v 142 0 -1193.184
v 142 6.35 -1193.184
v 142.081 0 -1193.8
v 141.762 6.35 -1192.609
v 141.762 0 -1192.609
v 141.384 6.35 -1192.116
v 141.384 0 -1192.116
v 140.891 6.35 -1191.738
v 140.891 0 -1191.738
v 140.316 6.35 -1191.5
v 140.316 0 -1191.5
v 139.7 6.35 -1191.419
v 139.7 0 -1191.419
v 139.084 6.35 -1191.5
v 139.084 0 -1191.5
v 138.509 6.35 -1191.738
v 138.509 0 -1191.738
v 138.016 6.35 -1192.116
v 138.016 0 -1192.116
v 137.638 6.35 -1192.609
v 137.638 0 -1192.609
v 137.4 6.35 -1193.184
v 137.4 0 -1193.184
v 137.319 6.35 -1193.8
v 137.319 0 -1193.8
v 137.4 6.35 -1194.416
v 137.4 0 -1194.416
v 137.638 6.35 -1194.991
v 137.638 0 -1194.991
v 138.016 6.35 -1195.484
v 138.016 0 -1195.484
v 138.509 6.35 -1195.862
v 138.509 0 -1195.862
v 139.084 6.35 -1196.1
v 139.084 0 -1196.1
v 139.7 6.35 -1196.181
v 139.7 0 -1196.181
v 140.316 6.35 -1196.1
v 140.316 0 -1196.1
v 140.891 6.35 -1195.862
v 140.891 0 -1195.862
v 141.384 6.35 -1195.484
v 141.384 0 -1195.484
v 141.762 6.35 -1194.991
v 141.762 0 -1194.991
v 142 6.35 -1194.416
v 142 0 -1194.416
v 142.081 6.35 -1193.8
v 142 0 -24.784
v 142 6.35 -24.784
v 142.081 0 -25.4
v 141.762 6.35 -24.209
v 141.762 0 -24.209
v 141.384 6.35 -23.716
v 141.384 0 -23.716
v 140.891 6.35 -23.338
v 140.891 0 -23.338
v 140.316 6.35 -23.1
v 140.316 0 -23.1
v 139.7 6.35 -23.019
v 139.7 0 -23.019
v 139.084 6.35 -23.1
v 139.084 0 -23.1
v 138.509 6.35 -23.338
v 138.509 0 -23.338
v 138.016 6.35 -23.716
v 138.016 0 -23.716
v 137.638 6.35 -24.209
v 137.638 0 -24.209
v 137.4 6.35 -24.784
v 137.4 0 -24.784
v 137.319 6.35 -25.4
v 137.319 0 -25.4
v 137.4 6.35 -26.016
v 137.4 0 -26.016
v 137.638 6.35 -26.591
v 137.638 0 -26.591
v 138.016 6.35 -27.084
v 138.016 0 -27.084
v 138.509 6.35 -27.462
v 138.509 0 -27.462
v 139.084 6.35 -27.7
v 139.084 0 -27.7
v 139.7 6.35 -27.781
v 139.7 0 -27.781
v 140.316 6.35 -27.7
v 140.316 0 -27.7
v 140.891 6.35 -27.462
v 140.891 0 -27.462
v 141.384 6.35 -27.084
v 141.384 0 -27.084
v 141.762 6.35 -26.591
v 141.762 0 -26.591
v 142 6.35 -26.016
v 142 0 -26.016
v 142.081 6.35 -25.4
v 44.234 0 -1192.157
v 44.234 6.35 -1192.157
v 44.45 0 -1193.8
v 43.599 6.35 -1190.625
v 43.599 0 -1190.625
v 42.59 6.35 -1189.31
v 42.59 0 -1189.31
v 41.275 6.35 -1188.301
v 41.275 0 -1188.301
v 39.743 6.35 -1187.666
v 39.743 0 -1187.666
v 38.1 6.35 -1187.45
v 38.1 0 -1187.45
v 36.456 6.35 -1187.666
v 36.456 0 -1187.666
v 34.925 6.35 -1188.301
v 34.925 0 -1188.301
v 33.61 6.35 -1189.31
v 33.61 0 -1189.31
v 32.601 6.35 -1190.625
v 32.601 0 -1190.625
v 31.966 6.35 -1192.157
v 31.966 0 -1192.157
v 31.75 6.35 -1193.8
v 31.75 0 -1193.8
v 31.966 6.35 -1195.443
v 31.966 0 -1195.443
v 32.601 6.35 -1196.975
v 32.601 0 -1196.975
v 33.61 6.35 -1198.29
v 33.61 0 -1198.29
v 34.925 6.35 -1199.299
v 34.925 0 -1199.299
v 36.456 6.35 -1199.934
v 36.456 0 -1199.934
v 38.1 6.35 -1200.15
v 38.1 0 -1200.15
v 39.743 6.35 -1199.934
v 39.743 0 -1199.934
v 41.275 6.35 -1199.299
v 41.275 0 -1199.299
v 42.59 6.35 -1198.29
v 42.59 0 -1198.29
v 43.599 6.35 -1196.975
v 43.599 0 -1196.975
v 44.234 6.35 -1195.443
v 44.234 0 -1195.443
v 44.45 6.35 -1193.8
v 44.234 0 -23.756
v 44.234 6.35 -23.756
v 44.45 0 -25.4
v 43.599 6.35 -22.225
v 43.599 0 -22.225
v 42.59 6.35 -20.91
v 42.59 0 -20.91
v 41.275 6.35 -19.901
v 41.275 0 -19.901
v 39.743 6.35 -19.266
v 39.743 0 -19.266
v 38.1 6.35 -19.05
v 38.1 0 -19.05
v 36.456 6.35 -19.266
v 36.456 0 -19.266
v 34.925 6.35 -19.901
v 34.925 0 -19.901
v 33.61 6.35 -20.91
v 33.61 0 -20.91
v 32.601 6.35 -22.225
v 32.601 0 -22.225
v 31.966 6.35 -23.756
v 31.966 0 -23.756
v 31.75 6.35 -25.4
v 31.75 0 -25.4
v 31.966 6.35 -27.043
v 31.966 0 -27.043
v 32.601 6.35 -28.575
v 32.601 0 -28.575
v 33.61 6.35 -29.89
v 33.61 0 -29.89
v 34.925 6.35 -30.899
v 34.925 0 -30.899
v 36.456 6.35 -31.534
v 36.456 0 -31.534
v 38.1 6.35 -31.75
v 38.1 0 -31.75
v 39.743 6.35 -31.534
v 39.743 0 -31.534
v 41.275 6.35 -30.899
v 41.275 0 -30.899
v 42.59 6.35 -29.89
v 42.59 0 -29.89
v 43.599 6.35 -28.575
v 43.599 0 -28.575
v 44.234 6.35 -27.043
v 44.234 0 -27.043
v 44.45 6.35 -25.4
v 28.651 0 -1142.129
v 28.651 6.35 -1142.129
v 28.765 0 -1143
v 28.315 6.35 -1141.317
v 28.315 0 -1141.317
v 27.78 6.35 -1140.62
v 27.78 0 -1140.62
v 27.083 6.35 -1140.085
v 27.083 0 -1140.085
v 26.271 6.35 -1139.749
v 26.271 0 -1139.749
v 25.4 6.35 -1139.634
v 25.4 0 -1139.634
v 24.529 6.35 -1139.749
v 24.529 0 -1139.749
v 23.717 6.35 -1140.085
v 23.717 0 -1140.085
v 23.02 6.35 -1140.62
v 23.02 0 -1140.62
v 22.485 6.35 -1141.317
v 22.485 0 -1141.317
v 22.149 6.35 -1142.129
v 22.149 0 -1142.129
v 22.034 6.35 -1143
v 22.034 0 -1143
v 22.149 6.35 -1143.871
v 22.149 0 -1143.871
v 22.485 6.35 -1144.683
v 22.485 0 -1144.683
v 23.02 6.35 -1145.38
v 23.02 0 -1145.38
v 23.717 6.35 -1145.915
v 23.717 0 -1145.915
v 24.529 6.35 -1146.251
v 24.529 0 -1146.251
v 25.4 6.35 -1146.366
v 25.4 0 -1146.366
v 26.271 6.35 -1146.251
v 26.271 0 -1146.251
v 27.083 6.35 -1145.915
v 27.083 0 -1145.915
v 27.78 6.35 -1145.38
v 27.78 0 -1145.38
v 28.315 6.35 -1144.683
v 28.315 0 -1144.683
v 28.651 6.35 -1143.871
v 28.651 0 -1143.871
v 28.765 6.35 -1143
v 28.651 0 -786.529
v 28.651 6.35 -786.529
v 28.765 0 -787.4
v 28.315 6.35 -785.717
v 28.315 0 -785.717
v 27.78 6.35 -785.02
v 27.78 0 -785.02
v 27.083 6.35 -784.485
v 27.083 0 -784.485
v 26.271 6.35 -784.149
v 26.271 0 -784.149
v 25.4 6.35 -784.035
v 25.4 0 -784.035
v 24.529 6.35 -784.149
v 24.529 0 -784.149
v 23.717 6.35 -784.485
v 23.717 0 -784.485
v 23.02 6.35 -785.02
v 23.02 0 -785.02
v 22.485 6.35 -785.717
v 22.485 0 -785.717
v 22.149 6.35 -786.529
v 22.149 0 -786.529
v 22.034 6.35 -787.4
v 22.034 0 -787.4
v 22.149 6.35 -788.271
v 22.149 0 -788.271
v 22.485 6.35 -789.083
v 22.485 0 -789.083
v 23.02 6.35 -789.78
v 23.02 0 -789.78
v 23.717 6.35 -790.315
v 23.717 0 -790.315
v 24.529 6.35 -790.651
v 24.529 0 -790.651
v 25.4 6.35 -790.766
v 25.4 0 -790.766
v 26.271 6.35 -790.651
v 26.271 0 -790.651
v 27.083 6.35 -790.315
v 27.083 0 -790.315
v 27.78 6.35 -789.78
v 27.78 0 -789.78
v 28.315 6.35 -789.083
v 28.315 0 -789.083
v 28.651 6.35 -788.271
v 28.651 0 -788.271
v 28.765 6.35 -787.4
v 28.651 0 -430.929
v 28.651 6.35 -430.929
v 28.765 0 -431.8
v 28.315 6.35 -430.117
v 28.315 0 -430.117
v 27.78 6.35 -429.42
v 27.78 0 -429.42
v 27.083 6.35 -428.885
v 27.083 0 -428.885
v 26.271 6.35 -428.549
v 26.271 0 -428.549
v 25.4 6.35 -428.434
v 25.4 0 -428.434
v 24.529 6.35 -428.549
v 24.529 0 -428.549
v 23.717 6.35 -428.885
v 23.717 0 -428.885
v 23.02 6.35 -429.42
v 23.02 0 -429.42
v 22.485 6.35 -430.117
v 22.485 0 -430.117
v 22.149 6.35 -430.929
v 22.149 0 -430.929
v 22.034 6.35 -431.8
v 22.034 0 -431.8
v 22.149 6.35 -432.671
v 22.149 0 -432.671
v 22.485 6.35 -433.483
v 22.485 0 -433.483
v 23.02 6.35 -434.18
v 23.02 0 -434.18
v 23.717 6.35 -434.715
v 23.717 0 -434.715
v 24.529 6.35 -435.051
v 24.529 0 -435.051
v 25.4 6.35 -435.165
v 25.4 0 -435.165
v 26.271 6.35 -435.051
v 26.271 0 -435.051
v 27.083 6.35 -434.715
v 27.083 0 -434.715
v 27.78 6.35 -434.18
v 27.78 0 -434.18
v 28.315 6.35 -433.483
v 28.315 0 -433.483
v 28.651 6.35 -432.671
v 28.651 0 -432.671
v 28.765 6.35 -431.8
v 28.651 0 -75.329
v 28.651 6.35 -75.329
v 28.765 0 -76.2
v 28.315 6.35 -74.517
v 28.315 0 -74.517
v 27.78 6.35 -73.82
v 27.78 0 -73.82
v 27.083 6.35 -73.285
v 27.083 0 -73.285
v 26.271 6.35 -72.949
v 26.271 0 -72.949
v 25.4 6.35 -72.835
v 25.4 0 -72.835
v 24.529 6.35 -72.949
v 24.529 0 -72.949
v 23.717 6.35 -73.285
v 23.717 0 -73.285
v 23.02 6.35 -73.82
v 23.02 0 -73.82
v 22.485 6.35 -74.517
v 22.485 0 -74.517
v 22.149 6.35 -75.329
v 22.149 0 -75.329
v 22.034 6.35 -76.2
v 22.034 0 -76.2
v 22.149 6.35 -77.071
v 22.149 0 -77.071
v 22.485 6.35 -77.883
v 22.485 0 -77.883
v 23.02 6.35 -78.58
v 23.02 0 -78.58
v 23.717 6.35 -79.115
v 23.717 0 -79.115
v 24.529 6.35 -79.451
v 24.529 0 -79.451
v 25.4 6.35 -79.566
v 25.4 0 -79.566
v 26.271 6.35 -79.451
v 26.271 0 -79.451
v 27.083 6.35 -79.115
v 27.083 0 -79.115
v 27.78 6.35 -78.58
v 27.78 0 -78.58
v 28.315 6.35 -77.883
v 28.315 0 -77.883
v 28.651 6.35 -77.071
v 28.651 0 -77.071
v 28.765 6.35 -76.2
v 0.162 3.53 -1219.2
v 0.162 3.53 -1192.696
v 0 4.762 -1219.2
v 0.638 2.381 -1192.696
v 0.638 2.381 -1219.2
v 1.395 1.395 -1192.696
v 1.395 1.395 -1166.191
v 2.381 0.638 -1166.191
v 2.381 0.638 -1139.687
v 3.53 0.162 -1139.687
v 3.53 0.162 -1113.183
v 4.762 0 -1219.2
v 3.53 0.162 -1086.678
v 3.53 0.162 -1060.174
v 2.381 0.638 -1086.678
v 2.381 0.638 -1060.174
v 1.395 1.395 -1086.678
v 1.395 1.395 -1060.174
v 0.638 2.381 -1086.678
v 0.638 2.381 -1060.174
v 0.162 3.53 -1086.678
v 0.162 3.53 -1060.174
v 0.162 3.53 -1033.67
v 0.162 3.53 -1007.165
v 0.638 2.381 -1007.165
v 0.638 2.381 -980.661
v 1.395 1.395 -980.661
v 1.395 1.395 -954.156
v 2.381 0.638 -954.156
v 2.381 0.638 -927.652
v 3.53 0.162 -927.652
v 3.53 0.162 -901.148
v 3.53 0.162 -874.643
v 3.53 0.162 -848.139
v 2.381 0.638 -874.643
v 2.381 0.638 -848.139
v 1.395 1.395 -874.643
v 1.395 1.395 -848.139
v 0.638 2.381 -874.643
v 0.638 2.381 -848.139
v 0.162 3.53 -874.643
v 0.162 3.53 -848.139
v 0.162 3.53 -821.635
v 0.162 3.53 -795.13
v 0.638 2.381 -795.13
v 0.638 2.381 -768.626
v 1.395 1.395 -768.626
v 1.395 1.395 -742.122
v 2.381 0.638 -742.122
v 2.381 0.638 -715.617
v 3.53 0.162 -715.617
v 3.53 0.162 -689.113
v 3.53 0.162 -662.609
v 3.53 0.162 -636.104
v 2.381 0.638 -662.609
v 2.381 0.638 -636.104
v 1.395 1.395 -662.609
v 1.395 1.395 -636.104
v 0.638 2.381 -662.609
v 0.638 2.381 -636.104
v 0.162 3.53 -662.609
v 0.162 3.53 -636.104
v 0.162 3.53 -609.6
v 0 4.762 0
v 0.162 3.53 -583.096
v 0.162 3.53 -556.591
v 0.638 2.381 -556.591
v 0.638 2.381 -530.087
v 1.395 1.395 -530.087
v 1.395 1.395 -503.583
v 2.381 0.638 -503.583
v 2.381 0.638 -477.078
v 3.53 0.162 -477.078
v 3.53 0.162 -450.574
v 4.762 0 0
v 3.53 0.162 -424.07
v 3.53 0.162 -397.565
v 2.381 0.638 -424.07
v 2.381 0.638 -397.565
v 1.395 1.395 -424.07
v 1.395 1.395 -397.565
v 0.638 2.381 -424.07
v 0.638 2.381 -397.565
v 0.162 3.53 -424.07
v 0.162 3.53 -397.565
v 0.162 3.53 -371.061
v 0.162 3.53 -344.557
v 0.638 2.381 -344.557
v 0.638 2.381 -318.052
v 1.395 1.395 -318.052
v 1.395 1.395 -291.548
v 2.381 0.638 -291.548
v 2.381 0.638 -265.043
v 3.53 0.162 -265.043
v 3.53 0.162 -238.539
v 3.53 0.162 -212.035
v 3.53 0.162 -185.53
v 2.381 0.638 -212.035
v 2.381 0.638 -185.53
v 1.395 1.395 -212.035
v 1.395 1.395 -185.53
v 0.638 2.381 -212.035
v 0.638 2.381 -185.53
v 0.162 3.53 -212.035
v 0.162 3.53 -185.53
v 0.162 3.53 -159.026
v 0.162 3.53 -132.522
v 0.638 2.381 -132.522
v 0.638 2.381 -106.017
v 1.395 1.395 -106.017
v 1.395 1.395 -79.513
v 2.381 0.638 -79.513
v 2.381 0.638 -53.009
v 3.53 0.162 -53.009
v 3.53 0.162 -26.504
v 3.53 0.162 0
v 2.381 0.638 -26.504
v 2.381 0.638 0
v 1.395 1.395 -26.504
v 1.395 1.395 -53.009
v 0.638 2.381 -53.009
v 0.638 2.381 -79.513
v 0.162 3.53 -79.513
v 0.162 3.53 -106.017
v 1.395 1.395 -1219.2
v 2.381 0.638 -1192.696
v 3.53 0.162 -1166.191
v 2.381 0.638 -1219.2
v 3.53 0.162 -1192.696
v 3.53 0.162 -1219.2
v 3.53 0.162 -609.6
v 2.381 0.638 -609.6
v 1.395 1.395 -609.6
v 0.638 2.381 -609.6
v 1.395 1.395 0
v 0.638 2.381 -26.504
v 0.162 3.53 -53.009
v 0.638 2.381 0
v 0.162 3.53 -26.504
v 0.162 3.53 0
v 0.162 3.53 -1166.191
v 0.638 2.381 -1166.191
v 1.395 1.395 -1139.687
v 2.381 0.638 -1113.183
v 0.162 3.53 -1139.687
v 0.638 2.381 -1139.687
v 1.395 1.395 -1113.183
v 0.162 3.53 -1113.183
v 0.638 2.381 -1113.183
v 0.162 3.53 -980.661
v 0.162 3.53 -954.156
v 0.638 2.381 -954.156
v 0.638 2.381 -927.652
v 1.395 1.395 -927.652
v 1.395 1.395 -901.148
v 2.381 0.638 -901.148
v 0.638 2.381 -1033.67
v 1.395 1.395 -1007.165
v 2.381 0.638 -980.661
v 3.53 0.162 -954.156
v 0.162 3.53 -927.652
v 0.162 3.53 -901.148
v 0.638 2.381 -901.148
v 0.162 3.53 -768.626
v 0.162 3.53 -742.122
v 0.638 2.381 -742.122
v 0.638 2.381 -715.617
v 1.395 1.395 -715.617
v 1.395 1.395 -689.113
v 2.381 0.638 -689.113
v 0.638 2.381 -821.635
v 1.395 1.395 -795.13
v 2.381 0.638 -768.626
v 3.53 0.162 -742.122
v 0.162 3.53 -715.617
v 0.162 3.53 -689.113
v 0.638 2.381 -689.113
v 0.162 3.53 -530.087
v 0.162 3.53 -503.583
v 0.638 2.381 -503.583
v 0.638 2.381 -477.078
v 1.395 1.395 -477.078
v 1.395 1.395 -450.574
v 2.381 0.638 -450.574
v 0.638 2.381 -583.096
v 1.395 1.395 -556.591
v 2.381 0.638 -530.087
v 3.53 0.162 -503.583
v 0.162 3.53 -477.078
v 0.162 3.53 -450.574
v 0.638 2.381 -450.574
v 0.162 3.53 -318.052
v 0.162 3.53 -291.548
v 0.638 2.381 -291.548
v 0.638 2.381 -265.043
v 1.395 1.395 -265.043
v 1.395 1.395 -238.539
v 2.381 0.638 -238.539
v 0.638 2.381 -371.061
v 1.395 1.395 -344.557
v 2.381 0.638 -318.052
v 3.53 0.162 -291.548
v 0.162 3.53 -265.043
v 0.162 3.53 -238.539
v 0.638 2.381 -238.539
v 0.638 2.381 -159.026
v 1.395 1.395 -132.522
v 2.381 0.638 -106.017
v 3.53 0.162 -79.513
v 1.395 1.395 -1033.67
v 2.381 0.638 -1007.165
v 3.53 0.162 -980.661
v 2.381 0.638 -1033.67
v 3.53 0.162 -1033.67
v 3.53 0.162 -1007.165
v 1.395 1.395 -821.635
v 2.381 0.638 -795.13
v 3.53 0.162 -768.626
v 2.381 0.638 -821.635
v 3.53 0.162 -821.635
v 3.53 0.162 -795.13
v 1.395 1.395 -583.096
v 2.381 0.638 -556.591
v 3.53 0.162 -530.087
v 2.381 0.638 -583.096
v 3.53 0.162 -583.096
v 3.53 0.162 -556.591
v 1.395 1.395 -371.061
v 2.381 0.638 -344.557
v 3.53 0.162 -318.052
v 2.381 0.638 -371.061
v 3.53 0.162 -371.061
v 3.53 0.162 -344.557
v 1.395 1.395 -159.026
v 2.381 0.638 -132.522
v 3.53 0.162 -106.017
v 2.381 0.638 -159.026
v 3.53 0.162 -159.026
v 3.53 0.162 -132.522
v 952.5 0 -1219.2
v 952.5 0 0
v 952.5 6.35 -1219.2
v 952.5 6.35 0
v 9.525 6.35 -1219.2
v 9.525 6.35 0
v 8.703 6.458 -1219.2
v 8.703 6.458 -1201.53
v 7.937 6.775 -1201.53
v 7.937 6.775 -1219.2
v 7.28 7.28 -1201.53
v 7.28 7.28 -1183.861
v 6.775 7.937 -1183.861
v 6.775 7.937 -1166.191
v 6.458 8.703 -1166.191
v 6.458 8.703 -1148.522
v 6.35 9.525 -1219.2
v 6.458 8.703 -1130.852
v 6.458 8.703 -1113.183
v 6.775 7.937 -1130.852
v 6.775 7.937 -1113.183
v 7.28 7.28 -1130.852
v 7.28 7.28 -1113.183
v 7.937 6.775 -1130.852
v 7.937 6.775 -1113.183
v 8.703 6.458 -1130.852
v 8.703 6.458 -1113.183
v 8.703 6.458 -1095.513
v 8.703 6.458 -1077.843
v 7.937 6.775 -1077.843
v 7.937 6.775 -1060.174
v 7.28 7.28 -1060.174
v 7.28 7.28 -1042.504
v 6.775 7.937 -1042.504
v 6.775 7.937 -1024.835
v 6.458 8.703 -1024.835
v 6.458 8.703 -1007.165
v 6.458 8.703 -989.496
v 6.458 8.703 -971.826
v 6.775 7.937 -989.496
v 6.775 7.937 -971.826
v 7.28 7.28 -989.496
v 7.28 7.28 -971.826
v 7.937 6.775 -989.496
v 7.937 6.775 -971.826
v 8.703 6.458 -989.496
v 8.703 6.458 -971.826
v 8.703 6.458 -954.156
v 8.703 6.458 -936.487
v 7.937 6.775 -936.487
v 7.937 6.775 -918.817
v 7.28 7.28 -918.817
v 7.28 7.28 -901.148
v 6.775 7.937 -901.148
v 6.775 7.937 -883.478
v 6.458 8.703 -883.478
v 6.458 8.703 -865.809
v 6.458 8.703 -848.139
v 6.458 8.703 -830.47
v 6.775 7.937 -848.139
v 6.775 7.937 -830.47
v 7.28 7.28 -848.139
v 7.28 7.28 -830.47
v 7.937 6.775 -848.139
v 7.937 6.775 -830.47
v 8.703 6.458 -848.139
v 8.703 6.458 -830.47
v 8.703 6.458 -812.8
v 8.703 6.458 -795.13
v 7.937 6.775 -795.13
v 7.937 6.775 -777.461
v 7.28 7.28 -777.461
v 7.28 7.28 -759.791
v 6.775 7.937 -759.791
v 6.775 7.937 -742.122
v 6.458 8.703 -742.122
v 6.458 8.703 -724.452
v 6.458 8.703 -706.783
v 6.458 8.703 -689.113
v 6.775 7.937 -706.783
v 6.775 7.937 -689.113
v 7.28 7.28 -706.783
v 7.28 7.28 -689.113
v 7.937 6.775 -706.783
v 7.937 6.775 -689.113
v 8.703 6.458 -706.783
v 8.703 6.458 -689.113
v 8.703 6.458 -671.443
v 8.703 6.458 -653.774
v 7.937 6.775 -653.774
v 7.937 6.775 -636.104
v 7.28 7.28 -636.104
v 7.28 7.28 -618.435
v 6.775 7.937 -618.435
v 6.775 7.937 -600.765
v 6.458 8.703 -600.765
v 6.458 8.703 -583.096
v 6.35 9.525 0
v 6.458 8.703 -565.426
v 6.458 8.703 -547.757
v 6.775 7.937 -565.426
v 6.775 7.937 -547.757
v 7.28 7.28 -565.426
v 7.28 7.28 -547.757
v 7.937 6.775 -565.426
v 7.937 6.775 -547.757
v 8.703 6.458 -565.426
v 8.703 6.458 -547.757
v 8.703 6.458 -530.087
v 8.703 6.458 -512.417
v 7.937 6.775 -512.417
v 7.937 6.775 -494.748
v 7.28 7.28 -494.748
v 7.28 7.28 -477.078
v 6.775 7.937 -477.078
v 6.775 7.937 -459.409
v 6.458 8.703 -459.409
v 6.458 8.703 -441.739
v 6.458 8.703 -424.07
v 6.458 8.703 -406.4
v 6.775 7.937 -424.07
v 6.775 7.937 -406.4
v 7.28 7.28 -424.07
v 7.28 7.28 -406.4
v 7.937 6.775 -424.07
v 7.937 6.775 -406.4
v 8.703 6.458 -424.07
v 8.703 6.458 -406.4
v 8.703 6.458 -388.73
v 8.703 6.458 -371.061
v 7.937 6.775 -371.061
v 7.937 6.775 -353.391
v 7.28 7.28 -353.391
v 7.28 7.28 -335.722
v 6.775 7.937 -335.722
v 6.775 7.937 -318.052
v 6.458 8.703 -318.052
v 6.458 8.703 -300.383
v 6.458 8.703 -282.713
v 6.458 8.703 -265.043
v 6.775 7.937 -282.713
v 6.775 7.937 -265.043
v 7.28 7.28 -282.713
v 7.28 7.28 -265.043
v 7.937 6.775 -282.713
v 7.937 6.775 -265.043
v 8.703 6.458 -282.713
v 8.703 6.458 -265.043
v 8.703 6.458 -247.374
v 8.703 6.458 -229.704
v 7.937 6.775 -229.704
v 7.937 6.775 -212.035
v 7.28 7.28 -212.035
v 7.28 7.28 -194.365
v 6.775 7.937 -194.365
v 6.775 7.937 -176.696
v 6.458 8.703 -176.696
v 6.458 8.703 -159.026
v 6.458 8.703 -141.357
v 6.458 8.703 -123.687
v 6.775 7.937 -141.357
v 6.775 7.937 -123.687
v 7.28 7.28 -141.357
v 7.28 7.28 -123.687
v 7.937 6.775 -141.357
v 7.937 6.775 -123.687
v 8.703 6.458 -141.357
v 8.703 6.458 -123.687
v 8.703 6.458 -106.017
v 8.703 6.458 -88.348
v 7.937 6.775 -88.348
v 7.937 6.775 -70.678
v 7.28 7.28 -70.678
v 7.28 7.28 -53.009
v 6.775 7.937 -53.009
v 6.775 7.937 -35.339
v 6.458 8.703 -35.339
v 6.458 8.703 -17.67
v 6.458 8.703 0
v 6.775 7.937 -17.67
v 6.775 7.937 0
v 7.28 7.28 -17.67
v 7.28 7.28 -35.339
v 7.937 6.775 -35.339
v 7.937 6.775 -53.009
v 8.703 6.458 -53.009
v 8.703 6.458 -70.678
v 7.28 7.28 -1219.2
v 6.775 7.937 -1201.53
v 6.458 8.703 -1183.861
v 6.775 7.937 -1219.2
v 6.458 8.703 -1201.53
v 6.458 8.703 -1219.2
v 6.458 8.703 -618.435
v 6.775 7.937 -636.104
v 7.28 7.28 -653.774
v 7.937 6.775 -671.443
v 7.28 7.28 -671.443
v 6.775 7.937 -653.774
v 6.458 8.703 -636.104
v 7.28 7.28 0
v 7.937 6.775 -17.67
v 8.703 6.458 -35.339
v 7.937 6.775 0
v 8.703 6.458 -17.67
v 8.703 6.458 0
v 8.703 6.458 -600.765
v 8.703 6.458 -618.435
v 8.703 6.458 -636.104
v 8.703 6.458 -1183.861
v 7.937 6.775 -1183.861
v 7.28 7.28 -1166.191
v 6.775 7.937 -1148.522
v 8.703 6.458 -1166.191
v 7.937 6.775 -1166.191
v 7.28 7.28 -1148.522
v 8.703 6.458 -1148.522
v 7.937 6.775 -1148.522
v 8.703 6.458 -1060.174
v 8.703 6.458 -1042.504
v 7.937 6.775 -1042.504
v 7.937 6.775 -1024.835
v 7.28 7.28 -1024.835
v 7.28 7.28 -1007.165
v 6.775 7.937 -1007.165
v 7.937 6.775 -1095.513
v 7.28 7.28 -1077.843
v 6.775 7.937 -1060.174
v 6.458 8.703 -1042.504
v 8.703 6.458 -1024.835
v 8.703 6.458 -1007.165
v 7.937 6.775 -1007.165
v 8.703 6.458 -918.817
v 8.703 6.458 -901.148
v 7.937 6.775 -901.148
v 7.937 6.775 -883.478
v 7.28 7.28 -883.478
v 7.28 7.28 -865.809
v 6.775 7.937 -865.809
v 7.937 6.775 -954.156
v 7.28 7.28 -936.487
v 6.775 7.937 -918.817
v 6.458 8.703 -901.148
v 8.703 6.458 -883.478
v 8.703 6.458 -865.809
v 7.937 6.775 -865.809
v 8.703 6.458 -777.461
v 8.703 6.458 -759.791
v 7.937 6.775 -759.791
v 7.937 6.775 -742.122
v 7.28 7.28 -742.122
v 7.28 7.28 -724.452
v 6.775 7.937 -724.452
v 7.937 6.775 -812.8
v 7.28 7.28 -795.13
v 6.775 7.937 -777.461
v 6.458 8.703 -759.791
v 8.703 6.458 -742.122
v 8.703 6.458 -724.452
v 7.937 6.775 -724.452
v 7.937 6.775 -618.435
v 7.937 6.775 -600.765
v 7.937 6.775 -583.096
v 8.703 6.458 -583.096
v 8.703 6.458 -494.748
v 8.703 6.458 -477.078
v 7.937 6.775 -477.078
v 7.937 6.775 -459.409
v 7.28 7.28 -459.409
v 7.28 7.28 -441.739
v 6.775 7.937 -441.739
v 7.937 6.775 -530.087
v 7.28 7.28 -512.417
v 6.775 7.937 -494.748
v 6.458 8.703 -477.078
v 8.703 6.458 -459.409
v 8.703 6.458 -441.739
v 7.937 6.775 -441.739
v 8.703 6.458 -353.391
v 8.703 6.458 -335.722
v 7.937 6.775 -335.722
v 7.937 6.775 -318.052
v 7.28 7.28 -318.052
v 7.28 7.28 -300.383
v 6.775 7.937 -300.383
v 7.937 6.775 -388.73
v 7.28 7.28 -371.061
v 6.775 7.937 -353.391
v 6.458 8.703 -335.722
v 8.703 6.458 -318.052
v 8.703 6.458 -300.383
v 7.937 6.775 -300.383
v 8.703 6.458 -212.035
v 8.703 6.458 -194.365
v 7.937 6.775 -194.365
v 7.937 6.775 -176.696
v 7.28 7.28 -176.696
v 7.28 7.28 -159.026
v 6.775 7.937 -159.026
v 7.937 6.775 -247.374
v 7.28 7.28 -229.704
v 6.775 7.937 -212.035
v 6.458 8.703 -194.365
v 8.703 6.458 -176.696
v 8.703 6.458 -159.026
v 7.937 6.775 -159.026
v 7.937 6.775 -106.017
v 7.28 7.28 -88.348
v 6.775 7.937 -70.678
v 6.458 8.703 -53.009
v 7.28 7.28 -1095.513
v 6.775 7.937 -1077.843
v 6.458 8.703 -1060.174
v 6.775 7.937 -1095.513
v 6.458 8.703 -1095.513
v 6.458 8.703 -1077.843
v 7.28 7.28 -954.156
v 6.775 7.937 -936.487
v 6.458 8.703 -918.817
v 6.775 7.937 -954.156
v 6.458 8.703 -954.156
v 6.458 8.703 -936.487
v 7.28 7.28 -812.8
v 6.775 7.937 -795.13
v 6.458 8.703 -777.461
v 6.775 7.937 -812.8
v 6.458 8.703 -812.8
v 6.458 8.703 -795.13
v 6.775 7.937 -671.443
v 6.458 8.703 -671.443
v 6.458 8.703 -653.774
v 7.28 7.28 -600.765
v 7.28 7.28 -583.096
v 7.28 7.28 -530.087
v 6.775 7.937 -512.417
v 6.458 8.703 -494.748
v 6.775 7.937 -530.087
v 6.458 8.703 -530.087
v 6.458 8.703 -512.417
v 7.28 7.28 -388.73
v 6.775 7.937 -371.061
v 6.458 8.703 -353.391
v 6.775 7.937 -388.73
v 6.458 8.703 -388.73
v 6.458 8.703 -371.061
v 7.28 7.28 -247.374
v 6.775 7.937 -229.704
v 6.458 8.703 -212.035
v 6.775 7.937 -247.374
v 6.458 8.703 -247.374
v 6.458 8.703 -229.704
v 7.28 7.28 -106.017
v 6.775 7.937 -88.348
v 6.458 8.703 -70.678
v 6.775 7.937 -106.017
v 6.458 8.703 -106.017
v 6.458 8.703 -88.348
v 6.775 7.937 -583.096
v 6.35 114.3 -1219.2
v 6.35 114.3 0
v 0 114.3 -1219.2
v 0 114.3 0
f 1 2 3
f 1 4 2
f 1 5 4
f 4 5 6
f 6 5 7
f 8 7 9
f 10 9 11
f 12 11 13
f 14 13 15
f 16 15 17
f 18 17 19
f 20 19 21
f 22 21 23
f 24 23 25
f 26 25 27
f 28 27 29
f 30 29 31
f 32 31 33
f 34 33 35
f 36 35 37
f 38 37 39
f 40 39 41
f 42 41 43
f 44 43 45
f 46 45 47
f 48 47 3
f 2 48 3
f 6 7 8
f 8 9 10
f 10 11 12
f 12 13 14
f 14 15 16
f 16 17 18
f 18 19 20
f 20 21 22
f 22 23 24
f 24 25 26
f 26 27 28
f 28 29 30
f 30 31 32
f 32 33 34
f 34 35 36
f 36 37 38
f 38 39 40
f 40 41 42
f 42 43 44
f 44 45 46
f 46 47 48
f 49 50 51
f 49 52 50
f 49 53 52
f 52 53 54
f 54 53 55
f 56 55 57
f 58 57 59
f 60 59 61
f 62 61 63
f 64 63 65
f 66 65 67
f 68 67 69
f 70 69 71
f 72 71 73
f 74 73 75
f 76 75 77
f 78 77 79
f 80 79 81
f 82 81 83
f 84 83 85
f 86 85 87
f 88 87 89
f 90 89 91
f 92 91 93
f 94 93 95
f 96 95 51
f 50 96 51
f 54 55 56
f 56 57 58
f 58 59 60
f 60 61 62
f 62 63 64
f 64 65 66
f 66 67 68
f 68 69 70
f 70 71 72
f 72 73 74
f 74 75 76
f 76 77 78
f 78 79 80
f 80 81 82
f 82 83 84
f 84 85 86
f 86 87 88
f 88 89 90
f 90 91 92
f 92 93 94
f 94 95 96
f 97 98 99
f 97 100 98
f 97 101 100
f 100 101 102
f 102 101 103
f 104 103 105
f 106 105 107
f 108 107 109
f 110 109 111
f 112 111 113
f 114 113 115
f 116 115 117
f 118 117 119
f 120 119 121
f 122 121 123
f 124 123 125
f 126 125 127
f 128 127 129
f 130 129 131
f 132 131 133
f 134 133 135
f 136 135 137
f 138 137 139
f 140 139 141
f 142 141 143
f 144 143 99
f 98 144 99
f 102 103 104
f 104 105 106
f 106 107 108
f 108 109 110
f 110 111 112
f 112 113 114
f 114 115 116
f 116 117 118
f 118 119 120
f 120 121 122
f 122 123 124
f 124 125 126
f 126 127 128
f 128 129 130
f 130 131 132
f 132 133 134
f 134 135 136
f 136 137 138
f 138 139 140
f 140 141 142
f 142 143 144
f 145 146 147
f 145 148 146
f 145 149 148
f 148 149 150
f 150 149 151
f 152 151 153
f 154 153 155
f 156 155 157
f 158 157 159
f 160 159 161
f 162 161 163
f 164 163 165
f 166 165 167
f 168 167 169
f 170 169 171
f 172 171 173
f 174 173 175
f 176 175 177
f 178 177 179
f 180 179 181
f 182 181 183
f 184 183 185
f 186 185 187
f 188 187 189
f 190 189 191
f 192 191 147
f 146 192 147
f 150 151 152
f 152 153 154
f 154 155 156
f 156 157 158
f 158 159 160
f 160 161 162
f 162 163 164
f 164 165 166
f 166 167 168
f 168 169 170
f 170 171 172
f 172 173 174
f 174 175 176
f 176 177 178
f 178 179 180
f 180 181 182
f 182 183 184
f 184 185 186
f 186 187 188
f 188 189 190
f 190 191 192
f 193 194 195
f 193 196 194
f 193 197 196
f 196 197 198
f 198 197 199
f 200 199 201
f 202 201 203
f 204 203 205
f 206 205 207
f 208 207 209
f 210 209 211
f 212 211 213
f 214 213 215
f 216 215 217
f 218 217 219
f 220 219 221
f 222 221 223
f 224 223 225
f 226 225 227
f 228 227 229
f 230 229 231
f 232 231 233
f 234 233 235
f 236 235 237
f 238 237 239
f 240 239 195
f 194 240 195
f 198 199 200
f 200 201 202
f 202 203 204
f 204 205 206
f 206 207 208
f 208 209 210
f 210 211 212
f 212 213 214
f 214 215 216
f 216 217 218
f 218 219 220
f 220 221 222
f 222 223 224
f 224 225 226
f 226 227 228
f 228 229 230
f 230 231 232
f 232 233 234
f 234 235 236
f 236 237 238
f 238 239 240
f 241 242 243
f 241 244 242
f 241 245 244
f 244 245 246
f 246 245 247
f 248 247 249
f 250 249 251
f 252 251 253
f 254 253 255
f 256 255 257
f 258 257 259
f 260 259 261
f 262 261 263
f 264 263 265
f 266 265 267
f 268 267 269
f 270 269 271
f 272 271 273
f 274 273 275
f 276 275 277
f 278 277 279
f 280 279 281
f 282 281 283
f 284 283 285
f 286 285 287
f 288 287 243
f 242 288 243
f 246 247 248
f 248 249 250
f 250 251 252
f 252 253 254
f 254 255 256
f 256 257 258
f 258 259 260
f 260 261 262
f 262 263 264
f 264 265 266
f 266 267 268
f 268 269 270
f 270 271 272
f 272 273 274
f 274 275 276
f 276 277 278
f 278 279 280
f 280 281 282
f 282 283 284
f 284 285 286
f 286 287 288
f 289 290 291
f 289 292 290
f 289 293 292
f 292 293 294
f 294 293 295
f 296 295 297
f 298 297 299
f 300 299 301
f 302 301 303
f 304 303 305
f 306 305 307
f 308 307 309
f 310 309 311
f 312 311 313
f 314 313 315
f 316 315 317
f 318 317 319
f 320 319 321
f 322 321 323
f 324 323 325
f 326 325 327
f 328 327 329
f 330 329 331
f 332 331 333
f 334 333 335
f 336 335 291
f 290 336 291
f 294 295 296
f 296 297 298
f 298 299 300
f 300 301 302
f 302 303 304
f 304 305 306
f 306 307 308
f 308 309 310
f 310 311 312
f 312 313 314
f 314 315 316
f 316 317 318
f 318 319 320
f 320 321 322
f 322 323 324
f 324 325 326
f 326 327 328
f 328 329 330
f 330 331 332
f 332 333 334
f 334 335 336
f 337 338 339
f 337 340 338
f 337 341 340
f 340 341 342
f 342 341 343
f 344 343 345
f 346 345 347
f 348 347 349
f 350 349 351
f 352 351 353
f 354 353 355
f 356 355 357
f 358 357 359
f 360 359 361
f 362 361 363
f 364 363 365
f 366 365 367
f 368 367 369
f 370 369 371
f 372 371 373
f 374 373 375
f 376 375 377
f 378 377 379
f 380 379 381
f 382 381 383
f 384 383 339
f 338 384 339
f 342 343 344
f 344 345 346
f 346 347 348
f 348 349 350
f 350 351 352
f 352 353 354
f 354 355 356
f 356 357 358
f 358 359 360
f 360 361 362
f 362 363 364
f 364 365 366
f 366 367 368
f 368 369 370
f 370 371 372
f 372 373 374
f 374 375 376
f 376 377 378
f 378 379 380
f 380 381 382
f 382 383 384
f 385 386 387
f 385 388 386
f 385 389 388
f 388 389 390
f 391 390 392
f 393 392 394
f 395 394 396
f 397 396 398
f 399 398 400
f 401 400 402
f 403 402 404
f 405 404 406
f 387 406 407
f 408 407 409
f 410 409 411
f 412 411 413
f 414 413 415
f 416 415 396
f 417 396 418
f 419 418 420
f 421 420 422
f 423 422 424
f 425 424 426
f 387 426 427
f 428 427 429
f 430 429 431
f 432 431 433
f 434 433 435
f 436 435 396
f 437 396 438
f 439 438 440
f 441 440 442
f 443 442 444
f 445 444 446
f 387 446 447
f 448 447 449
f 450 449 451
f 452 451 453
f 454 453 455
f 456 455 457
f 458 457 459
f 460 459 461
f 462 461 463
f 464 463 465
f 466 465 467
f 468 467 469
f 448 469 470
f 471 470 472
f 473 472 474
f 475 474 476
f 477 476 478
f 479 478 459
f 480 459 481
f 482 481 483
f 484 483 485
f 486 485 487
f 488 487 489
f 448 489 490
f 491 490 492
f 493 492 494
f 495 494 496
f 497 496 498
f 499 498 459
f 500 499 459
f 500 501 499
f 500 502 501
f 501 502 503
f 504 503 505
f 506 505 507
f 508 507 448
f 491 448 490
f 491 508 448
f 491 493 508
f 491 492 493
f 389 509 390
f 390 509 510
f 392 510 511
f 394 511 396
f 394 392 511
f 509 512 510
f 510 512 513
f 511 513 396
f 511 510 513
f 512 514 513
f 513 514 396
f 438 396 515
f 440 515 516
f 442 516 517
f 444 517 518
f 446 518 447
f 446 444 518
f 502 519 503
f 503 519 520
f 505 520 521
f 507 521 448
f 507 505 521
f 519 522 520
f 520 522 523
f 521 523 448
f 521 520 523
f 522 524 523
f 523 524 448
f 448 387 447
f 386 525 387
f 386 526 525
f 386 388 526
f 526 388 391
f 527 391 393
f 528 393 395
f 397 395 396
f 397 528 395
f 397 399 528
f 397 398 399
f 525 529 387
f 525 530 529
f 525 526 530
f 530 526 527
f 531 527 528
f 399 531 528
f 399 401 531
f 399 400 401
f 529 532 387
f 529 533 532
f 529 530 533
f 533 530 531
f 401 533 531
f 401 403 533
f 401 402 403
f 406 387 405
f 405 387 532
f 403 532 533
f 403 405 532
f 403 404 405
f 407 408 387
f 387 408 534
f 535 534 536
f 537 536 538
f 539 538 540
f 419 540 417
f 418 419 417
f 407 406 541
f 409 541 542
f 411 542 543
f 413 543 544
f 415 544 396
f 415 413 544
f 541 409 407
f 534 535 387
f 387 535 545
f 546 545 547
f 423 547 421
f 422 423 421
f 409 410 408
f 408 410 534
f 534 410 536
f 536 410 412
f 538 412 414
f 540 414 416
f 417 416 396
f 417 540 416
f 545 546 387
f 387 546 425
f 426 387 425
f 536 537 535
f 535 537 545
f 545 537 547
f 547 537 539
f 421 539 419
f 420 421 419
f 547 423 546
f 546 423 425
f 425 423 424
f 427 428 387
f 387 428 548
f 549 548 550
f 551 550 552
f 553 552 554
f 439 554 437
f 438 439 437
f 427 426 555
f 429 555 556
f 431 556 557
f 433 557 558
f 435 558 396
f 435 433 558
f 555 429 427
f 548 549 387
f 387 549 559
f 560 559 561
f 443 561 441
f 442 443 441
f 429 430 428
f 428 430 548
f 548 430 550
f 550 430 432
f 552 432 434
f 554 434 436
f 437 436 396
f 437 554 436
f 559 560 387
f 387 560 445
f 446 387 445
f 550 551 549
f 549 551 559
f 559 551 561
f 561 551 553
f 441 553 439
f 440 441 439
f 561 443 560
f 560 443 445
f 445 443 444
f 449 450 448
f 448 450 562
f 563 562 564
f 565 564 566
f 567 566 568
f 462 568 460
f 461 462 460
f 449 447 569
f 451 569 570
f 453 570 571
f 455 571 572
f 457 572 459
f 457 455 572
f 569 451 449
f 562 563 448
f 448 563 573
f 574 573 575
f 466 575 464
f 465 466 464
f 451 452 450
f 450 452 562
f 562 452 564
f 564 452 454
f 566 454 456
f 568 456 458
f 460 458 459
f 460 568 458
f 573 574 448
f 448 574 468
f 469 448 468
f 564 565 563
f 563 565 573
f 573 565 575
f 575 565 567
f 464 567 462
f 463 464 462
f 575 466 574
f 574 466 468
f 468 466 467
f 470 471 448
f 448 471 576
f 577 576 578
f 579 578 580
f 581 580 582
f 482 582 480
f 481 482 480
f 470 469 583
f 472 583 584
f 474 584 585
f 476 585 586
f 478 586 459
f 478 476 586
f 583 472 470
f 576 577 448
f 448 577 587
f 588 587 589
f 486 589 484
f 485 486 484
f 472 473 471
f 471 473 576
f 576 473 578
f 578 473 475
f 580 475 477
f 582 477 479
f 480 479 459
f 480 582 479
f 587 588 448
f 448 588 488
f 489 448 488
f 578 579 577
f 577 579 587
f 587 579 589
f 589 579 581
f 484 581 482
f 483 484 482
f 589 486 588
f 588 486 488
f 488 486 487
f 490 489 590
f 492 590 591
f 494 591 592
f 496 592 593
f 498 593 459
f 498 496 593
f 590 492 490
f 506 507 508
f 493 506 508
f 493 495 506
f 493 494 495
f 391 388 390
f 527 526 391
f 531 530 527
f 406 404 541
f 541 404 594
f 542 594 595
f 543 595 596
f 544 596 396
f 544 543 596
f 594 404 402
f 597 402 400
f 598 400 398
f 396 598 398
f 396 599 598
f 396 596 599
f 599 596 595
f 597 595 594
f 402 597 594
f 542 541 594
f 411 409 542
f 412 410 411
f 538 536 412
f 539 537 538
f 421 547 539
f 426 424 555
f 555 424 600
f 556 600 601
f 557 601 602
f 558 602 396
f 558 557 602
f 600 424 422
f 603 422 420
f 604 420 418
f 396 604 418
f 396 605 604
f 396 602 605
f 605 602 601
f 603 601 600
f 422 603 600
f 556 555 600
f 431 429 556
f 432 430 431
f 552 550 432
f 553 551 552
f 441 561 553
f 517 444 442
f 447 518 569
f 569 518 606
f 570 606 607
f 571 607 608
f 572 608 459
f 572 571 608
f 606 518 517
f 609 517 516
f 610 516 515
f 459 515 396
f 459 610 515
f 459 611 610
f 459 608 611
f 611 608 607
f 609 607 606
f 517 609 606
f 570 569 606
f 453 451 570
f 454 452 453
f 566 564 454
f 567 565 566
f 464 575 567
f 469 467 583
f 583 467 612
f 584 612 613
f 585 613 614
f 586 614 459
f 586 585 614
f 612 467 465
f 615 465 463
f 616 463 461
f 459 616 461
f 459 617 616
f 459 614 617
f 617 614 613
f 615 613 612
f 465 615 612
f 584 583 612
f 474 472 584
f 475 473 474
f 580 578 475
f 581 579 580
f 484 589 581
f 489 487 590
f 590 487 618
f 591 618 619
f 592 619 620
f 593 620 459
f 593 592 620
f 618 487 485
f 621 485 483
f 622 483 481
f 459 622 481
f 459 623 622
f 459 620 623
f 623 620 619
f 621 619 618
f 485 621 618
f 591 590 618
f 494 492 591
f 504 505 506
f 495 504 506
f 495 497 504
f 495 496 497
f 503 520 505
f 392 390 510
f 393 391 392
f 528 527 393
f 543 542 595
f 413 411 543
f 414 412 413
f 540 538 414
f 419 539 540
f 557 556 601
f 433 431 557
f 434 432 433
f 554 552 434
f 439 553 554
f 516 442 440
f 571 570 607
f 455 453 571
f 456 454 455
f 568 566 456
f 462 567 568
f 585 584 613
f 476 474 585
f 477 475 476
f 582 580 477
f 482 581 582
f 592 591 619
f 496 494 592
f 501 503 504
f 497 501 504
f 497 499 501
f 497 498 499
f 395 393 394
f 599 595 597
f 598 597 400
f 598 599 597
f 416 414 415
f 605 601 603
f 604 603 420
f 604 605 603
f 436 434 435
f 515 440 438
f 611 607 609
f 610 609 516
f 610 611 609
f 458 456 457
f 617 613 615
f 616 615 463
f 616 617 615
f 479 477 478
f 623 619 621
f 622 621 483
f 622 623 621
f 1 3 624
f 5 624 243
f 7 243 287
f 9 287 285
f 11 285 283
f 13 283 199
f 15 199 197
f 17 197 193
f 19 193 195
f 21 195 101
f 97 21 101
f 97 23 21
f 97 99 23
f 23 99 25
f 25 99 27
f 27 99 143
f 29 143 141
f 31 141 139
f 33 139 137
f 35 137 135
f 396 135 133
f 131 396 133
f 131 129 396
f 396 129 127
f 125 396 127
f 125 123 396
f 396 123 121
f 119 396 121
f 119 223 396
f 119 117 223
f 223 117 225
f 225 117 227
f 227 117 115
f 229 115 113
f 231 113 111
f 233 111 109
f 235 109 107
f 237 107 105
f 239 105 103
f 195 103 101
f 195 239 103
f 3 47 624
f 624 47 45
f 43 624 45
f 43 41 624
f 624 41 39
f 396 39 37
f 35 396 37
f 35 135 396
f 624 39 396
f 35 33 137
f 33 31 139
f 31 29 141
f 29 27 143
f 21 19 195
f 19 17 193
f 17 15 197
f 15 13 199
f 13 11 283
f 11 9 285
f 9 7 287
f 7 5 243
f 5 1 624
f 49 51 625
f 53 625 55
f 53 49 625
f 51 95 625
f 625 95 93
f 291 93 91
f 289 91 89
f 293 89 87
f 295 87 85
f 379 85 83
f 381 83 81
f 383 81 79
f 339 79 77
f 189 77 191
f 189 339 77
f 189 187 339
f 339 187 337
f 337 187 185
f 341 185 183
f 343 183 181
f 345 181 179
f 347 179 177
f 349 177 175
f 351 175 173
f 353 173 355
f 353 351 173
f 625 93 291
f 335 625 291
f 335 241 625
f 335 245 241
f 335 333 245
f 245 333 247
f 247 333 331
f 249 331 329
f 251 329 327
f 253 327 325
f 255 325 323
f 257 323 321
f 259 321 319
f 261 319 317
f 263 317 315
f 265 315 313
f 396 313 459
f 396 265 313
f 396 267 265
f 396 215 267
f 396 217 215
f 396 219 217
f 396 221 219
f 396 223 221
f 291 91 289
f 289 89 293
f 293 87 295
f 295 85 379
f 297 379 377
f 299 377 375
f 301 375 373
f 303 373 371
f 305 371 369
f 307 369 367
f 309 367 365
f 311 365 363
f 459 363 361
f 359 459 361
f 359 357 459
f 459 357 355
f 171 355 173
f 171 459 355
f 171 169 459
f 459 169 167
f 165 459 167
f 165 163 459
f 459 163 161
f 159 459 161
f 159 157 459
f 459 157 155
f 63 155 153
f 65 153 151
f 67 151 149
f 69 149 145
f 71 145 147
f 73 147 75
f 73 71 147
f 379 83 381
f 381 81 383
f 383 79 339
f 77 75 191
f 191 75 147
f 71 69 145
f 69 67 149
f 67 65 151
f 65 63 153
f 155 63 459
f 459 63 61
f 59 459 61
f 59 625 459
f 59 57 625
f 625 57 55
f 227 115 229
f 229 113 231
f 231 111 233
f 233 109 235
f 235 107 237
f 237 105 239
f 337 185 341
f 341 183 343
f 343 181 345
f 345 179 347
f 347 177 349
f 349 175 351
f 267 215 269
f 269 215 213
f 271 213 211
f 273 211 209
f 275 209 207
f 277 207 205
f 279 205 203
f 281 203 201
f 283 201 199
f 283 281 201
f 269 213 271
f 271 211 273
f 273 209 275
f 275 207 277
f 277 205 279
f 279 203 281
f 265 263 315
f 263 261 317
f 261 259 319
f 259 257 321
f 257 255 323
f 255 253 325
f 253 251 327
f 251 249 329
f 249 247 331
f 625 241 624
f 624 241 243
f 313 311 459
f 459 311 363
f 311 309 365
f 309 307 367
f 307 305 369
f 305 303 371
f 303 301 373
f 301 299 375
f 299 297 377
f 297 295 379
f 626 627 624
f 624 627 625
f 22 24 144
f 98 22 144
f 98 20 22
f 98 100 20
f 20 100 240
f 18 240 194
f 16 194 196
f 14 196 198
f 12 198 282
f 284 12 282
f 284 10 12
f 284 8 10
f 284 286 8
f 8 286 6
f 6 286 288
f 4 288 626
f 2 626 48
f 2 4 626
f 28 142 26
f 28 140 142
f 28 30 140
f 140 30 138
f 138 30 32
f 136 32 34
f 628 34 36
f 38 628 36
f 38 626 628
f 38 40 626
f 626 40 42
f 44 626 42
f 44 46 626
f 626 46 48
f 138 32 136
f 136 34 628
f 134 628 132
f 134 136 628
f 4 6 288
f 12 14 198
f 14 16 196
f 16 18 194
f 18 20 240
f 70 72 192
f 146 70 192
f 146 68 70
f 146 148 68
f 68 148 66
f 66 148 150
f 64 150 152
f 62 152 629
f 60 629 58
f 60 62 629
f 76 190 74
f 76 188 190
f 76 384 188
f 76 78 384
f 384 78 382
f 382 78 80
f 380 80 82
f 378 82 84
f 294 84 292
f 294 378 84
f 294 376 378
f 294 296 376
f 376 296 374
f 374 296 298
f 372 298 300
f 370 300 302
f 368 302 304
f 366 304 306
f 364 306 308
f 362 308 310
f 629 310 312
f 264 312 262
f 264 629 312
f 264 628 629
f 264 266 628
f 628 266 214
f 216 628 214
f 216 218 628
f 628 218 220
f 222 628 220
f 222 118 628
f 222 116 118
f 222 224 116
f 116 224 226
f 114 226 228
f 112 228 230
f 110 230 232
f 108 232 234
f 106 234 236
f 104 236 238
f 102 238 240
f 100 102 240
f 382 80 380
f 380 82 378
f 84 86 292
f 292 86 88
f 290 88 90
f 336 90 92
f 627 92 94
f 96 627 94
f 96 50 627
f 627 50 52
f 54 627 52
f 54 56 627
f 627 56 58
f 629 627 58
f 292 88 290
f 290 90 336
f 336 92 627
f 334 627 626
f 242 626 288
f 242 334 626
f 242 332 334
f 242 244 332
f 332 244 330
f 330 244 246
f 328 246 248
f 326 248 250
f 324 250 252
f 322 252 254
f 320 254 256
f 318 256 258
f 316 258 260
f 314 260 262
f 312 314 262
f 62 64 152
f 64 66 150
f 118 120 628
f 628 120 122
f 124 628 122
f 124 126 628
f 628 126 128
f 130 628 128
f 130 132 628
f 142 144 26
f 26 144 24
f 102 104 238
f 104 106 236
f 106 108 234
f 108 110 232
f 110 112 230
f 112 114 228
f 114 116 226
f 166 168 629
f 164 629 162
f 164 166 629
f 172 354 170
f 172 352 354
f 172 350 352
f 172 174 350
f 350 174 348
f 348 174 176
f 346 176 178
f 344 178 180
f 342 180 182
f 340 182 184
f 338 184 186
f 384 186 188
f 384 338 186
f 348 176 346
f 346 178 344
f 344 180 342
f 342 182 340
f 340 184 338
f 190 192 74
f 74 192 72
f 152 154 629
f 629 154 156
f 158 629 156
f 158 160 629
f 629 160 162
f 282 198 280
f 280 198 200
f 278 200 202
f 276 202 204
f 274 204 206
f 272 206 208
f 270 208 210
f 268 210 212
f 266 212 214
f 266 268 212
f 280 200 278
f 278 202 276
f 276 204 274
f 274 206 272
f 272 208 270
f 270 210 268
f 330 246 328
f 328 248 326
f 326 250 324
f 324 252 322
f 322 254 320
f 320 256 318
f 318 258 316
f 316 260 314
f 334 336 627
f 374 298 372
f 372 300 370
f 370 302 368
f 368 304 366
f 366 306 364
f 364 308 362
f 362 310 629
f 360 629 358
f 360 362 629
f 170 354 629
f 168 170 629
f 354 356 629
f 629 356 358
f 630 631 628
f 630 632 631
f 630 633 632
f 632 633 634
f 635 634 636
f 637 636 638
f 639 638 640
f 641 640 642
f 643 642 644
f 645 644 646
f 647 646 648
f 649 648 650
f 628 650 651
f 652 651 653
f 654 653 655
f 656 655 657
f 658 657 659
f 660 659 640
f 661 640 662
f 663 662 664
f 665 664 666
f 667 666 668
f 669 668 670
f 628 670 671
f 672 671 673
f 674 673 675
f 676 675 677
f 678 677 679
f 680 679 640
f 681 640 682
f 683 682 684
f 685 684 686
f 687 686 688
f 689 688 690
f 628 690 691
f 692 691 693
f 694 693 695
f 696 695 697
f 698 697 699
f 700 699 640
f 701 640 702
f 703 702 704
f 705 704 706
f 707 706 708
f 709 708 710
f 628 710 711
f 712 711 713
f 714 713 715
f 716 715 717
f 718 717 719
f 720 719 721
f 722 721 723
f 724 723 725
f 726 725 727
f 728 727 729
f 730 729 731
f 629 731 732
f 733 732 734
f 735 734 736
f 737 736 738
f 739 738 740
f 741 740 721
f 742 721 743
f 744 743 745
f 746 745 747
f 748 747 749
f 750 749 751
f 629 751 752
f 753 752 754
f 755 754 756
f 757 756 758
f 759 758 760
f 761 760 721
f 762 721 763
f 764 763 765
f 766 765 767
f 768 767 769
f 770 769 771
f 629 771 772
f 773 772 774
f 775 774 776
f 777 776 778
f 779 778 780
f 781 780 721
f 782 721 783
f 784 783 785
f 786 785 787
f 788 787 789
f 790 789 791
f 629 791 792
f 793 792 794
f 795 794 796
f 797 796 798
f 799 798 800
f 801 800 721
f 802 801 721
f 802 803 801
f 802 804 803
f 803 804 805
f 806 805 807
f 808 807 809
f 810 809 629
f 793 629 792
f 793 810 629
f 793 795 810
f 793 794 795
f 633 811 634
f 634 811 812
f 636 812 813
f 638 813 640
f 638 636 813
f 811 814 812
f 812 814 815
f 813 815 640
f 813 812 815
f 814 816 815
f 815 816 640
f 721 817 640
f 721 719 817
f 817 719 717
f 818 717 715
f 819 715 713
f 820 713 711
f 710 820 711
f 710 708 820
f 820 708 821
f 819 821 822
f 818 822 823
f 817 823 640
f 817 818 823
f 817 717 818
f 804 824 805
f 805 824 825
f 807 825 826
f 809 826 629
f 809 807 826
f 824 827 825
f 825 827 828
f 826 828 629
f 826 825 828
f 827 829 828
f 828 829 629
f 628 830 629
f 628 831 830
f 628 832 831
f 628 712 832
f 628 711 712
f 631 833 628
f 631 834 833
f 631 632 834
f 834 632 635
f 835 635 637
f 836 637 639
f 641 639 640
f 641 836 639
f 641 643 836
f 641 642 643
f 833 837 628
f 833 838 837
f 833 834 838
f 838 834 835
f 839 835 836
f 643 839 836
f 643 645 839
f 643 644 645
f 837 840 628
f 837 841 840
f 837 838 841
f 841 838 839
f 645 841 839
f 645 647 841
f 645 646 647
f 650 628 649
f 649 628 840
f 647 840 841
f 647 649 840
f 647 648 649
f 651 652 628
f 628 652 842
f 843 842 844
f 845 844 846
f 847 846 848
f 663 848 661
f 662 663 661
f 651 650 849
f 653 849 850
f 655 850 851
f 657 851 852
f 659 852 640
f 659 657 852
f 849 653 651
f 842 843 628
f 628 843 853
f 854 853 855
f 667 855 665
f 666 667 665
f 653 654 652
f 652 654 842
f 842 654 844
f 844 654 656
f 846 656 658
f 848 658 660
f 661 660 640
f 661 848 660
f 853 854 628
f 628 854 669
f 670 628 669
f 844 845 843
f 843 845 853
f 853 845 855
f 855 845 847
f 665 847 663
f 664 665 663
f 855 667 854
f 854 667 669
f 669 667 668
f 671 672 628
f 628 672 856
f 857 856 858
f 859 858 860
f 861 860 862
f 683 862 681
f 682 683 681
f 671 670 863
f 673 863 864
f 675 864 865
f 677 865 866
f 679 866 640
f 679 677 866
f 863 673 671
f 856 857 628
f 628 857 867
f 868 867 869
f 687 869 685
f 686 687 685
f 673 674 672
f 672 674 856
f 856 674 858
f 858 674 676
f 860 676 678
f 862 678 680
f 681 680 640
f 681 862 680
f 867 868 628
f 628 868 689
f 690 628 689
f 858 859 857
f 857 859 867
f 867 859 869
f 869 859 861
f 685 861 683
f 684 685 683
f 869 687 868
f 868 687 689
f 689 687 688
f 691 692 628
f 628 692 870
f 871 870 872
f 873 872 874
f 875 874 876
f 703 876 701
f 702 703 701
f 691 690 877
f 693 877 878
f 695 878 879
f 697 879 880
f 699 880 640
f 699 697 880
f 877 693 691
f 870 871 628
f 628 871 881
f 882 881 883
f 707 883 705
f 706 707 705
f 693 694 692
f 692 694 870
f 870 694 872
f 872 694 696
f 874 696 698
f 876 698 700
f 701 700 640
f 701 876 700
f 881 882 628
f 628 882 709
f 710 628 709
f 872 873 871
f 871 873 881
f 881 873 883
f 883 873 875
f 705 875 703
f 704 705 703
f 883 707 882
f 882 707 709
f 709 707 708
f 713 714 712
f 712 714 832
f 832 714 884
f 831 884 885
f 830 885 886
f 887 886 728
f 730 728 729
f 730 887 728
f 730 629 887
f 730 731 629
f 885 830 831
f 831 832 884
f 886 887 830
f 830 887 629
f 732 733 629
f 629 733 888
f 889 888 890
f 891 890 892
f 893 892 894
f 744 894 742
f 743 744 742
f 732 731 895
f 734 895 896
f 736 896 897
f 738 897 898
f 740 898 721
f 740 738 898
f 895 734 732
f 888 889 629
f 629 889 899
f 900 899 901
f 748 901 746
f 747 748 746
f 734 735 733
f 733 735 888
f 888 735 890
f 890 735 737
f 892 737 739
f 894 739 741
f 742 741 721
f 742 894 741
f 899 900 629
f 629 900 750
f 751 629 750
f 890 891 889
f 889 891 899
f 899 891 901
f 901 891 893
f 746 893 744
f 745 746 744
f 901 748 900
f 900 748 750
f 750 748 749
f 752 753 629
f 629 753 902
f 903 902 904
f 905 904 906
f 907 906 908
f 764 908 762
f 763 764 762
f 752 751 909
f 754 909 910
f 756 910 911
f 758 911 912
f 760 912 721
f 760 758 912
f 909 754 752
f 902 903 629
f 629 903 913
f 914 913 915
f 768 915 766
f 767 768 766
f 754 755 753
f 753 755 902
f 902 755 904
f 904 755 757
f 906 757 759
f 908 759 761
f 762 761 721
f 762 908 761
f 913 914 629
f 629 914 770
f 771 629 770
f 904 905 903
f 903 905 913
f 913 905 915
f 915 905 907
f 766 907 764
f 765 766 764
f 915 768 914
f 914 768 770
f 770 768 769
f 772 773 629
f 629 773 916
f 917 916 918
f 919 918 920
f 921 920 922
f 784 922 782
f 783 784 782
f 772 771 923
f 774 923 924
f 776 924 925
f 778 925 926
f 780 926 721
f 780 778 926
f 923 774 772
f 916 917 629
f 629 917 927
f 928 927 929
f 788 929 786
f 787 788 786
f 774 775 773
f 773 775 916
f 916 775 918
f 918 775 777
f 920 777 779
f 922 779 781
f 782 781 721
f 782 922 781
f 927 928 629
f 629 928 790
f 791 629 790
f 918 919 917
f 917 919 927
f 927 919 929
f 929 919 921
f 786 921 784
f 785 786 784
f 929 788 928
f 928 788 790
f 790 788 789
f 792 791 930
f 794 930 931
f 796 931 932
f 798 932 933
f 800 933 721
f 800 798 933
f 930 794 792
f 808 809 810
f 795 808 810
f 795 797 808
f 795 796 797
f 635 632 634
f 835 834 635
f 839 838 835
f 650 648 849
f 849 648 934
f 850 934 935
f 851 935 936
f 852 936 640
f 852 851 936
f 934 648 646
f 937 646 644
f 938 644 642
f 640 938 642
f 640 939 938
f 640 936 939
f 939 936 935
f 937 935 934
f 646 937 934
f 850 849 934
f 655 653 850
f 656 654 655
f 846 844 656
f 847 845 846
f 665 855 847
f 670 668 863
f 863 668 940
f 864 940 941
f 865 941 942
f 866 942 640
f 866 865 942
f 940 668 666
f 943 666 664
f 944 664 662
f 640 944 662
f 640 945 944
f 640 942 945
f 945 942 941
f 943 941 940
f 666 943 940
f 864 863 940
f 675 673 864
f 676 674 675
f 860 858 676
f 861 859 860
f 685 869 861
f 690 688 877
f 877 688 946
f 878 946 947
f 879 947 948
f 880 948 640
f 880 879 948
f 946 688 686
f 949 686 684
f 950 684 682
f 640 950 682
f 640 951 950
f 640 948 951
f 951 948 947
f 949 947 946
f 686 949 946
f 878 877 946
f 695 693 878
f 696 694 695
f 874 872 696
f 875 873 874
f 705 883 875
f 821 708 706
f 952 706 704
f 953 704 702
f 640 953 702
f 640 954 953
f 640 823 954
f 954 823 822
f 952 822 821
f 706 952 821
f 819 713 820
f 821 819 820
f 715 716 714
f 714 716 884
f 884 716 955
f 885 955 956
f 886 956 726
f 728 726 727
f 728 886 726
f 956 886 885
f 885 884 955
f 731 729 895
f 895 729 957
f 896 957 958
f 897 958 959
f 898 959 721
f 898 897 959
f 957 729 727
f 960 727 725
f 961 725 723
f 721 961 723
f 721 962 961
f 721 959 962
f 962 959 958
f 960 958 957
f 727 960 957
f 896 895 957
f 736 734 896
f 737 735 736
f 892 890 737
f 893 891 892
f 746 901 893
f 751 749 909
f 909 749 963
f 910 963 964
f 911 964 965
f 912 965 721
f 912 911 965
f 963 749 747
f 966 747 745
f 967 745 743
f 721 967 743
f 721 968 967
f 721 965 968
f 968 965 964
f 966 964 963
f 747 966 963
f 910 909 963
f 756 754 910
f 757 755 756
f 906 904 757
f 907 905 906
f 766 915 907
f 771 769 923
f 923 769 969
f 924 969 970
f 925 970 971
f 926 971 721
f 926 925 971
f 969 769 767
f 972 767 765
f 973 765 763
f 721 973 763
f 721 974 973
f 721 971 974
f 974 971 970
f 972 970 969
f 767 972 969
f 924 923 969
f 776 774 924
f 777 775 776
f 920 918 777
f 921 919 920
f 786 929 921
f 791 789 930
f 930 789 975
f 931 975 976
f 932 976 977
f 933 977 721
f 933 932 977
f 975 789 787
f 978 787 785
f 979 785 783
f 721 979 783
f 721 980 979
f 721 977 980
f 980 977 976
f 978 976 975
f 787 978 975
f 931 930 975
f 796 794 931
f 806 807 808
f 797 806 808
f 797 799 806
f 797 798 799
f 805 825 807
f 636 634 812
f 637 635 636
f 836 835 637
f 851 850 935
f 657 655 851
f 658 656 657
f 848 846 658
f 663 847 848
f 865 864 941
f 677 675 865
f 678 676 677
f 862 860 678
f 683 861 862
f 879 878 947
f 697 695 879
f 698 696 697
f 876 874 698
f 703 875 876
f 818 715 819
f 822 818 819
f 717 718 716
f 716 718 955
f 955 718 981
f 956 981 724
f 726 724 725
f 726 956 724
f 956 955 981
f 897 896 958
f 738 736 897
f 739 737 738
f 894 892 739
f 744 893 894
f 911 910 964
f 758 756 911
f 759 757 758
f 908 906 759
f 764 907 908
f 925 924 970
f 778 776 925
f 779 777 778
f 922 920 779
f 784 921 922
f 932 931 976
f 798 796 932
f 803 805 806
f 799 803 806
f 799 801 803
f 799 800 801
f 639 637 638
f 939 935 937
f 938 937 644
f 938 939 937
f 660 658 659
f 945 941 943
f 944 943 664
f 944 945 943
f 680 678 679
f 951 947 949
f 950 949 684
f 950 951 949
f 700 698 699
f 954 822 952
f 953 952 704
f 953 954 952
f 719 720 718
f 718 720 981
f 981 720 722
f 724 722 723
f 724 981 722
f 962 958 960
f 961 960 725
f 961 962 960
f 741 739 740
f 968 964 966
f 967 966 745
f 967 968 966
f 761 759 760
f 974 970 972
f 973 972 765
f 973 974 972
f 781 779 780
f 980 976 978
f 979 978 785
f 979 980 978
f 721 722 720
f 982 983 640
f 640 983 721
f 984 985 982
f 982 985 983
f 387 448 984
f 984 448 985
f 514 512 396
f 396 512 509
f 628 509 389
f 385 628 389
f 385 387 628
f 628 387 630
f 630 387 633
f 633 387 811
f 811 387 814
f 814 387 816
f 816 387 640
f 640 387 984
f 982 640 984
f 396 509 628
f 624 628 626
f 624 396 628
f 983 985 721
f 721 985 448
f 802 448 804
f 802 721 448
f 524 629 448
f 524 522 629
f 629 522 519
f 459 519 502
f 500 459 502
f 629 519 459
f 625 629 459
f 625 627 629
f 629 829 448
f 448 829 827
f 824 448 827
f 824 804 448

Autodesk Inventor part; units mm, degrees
ref_plane "YZ Plane" through (0, 0, 0) normal (1, 0, 0) x (0, 1, 0)
ref_plane "XZ Plane" through (0, 0, 0) normal (0, 1, 0) x (-1, 0, 0)
ref_plane "XY Plane" through (0, 0, 0) normal (0, 0, 1) x (1, 0, 0)
sketch "Sketch1" plane through (0, 0, 0) normal (0, 0, 1) x (1, 0, 0)
  line L0 (0, 114.3) -> (0, 4.7625)
  line L1 (4.7625, 0) -> (952.5, 0)
  line L2 (952.5, 0) -> (952.5, 6.35)
  line L3 (952.5, 6.35) -> (9.525, 6.35)
  line L4 (6.35, 9.525) -> (6.35, 114.3)
  line L5 (6.35, 114.3) -> (0, 114.3)
  arc A0 (6.35, 9.525) -> (9.525, 6.35) centre (9.525, 9.525) ccw
  arc A1 (0, 4.7625) -> (4.7625, 0) centre (4.7625, 4.7625) ccw
  point P0 (0, 0)
  dimension "d0" = 114.3
  dimension "d1" = 6.35
  dimension "d2" = 6.35
  dimension "d3" = 952.5
  dimension "d4" = 3.175
  dimension "d5" = 4.7625
extrude "Extrusion1" add sketch "Sketch1" against normal blind 1219.2
hole "Hole1" at (25.4, 6.35, -76.2) direction (0, -1, 0) diameter 6.731 end through all
pattern_linear "Rectangular Pattern1" count 4 spacing 355.6 along (0, 0, -1) of "Hole1"
hole "Hole2" at (38.1, 6.35, -25.4) direction (0, -1, 0) diameter 12.7 depth 25.4 tip angle 118
pattern_linear "Rectangular Pattern2" count 2 spacing 1168.4 along (0, 0, -1) of "Hole2"
hole "Hole3" at (139.7, 6.35, -25.4) direction (0, -1, 0) diameter 4.7625 depth 25.4 tip angle 118
pattern_linear "Rectangular Pattern3" count 2 spacing 1168.4 along (0, 0, -1) of "Hole3"
properties part number "GE-12062"
